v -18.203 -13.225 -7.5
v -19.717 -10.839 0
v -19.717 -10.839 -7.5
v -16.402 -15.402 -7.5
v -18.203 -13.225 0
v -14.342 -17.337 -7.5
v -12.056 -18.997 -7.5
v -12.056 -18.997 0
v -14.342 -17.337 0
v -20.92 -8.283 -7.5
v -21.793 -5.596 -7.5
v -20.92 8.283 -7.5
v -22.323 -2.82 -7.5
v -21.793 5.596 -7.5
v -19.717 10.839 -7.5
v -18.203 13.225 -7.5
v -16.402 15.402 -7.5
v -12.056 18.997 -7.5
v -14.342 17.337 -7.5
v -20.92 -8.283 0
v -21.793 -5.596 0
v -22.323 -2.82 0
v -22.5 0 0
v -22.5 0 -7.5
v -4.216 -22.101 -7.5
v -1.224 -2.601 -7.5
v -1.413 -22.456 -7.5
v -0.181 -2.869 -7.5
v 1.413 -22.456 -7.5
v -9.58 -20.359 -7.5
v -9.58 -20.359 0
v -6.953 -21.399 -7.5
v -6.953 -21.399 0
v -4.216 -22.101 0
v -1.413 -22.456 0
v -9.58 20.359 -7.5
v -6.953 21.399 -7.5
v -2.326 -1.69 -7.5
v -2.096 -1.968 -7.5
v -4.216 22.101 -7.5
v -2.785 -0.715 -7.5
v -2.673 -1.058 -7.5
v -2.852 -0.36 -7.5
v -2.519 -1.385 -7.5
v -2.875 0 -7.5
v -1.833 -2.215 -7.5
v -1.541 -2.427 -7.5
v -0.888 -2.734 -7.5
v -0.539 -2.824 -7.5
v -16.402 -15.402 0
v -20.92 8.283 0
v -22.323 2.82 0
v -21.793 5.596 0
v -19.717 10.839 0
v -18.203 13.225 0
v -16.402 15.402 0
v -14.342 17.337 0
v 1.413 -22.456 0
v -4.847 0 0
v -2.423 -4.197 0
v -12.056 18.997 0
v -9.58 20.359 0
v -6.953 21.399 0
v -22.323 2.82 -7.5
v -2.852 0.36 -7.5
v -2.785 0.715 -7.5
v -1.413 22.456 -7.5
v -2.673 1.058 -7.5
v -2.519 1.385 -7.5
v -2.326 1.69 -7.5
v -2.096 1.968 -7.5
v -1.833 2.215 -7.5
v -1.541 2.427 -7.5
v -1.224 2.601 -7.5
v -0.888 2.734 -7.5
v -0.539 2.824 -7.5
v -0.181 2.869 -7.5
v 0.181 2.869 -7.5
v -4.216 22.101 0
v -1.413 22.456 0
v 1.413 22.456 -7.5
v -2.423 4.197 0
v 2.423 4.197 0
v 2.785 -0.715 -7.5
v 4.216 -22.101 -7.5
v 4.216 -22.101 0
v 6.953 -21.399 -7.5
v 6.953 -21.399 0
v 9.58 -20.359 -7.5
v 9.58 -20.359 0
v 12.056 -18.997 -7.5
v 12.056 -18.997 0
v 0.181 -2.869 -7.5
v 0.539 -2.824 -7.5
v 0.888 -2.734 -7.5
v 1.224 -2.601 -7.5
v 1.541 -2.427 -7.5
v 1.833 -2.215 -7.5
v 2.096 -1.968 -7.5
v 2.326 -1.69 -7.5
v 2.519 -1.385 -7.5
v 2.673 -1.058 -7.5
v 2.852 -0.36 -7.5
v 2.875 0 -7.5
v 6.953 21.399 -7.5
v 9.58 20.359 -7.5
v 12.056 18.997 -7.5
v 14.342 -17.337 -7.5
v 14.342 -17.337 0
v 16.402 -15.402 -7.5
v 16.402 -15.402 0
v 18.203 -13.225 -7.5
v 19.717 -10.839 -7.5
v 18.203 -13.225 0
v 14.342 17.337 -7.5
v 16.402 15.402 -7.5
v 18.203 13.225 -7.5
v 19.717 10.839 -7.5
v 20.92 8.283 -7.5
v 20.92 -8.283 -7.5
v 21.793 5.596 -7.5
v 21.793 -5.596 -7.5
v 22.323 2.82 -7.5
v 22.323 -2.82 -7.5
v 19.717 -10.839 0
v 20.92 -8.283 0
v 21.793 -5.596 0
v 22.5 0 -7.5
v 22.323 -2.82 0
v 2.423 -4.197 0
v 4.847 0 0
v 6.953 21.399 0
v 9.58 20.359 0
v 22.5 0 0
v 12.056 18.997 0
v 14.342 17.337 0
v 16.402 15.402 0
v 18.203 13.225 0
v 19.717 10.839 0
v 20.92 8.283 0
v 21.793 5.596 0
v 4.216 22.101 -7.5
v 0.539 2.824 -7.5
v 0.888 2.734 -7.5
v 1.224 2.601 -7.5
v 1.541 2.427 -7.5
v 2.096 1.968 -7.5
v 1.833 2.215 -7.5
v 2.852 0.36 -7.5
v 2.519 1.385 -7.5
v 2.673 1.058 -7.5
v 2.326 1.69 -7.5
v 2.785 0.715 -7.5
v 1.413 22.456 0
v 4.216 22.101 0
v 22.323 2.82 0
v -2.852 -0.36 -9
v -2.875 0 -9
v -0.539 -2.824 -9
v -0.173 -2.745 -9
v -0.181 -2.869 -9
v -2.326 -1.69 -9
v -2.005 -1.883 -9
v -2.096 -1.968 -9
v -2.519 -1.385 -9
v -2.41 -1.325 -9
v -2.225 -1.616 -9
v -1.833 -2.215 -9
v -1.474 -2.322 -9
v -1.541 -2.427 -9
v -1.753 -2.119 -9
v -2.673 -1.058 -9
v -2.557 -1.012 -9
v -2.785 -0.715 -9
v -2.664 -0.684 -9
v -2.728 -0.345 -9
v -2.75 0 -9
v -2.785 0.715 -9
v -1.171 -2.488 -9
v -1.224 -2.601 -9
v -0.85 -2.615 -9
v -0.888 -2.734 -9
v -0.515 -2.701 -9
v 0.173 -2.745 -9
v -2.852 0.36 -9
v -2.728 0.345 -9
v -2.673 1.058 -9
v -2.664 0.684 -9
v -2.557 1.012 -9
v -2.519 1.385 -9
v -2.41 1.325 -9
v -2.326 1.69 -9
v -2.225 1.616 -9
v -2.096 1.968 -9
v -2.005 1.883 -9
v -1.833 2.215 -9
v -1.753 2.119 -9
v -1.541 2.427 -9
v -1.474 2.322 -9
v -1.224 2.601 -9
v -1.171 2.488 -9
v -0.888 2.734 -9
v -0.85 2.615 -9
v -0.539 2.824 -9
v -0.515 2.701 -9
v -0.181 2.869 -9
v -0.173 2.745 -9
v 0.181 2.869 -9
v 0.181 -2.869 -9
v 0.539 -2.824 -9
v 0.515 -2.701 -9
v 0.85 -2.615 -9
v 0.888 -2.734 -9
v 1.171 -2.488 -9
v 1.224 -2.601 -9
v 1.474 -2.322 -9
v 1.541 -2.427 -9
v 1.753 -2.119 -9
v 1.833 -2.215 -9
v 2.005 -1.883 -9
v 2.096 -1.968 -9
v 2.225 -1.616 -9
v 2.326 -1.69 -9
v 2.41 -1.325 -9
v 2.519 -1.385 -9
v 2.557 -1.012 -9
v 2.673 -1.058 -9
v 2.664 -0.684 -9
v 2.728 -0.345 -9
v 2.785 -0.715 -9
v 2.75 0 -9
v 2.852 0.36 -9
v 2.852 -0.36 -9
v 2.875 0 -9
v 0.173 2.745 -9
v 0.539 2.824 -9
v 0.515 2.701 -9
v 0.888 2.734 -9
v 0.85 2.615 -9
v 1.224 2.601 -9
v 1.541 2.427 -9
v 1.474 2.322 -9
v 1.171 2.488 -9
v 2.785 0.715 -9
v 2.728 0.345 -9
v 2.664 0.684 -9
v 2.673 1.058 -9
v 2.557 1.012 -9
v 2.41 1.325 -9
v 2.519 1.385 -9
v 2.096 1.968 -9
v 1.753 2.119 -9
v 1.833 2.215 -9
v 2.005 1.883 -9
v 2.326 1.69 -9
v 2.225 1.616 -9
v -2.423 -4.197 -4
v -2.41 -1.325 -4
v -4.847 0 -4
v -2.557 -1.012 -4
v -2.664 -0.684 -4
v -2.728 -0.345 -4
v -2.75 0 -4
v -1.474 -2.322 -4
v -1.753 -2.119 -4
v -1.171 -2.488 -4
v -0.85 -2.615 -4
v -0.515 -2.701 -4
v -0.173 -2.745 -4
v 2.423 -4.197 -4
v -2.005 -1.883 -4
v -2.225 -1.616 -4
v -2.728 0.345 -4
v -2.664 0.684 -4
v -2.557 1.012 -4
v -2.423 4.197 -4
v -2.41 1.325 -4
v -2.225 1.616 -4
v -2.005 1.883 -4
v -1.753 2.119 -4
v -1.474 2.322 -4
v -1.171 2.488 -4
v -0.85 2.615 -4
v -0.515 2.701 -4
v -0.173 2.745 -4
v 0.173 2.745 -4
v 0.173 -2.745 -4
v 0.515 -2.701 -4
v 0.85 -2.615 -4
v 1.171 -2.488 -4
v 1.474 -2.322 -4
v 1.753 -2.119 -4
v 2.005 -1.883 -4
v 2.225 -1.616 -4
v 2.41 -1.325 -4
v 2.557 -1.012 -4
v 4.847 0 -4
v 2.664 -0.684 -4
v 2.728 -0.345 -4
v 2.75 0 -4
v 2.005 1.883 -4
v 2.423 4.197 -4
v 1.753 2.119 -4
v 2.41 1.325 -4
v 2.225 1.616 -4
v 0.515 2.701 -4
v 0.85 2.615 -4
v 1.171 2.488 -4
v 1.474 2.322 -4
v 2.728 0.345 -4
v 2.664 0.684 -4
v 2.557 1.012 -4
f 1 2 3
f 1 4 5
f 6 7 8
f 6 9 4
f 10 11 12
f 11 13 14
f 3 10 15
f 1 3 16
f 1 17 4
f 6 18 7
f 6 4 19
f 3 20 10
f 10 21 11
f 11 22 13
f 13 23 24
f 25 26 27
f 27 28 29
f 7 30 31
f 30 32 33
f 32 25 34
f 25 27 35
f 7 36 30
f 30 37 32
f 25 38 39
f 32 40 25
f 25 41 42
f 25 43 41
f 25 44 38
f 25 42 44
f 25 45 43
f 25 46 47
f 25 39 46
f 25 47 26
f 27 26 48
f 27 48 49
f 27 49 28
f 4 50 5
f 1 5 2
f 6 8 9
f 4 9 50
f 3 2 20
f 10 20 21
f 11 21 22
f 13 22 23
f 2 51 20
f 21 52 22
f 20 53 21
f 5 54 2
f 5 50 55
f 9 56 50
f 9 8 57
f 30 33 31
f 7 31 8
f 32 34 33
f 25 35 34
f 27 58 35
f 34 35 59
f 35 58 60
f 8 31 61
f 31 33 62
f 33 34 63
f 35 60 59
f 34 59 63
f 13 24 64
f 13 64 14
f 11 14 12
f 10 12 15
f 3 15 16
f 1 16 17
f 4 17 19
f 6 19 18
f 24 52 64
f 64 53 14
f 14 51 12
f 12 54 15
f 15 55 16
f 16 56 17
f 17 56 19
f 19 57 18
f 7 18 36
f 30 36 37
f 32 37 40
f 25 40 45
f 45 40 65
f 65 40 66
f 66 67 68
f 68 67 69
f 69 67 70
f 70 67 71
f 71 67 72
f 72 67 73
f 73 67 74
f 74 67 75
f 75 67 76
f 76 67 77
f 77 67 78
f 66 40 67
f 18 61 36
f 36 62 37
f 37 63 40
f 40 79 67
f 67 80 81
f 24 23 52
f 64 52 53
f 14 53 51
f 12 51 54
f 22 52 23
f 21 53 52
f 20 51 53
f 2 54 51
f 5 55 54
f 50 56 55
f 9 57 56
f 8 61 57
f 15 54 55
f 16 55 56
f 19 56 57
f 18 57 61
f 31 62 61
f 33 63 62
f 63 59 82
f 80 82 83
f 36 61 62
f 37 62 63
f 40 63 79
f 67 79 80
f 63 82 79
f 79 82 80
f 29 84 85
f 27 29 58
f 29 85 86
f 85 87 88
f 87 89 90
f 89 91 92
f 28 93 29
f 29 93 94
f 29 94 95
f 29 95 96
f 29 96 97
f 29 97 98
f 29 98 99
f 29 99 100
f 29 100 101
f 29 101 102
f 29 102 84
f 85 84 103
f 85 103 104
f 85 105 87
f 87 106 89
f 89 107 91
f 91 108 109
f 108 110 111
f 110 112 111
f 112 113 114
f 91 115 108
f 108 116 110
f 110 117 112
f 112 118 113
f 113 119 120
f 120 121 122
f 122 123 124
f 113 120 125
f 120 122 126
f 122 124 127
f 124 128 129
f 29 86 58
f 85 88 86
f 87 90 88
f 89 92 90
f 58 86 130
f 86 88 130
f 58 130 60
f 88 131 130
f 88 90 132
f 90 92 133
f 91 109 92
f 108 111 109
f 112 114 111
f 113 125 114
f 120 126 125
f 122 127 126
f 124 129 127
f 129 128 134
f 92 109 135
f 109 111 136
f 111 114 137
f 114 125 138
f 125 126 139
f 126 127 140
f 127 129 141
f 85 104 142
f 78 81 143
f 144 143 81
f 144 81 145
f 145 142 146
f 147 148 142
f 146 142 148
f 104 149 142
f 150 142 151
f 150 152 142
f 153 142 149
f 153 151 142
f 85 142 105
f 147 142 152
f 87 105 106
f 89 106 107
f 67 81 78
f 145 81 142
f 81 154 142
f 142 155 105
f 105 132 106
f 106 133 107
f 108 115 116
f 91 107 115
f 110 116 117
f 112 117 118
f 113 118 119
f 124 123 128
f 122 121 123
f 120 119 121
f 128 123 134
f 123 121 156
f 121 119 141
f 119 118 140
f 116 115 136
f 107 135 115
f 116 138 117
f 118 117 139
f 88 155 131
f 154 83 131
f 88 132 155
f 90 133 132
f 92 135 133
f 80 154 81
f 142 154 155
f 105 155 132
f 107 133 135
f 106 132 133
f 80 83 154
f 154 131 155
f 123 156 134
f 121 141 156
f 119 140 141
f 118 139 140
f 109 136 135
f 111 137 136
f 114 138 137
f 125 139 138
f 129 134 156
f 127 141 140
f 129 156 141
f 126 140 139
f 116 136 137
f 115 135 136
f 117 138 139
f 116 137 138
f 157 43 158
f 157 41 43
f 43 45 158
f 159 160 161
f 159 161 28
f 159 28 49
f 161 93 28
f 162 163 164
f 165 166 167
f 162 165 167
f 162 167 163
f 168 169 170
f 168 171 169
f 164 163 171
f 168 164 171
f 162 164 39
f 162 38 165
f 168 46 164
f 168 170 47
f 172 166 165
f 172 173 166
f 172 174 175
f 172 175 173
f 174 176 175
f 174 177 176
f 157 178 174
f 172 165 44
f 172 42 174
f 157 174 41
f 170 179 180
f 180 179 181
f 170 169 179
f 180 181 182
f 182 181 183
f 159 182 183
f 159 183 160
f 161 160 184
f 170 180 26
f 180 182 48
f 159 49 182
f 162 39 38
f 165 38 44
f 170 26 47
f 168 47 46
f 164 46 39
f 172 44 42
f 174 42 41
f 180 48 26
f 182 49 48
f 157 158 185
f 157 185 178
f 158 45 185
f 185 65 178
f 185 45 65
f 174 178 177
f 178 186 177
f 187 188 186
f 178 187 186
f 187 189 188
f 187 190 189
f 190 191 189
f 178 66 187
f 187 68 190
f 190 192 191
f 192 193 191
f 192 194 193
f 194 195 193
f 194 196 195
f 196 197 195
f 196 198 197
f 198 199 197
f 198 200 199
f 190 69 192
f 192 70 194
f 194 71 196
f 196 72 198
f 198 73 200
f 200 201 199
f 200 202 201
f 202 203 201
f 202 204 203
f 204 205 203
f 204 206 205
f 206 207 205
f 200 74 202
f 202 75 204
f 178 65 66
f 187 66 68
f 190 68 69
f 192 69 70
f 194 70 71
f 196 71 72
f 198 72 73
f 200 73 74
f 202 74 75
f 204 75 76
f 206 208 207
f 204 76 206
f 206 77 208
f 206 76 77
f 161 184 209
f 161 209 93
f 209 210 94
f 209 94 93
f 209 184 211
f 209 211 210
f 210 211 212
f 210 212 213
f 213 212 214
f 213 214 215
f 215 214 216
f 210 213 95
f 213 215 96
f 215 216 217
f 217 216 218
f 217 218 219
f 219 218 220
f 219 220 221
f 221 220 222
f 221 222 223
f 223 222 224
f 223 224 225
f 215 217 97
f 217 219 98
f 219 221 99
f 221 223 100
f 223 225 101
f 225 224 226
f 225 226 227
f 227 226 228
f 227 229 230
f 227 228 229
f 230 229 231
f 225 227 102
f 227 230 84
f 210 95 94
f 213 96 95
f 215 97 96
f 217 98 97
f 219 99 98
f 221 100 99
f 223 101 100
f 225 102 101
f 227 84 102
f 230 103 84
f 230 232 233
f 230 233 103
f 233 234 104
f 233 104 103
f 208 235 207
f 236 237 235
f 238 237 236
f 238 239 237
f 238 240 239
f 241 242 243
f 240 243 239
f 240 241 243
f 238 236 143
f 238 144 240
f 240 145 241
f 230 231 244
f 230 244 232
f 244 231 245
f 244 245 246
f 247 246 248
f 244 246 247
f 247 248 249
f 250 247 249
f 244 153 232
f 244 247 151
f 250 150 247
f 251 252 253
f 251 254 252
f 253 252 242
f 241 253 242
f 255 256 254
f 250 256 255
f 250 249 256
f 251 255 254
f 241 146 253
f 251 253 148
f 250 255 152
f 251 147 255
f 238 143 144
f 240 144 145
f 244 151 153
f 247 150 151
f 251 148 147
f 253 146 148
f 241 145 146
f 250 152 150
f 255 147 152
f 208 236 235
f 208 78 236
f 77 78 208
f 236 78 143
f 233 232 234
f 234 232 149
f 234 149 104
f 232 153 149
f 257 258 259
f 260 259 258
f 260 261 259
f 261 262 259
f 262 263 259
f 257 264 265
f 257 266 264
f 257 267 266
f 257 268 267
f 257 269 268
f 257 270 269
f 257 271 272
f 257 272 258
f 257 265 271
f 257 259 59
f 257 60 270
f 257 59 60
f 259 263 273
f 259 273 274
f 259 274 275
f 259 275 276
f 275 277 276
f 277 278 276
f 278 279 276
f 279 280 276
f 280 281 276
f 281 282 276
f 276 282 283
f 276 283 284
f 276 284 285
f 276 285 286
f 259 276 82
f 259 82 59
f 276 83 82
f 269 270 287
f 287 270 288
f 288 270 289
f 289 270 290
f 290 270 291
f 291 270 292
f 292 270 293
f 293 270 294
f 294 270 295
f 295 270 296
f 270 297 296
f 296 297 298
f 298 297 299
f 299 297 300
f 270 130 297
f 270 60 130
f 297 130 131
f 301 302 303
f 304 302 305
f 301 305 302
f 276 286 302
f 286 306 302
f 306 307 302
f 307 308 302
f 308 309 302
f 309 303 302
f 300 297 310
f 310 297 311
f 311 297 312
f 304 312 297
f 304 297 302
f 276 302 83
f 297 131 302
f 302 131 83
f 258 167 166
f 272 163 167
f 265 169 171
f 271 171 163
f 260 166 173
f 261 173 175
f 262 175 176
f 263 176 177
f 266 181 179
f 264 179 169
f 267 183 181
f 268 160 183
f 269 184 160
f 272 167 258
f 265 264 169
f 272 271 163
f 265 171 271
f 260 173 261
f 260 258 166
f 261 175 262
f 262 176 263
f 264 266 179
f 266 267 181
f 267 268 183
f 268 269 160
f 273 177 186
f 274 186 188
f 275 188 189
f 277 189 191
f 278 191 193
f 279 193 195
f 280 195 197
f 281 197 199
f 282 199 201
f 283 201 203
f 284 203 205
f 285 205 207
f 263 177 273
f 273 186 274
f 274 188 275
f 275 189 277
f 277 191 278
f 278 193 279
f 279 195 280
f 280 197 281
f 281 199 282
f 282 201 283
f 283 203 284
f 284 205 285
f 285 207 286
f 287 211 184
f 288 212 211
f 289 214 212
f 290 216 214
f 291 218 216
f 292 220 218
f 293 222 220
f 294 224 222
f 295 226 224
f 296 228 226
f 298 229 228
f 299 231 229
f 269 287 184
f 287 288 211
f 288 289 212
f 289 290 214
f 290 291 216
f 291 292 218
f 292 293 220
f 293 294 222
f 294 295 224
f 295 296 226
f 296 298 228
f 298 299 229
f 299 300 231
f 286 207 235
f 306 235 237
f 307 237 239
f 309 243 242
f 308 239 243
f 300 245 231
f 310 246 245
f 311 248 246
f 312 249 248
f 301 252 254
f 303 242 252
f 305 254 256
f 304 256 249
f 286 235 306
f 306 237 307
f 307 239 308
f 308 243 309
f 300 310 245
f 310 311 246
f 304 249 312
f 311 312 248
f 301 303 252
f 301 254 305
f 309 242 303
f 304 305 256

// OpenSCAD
$fn = 50;


difference() {
	union() {
		translate(v = [0, 0, -7.5000000000]) {
			cylinder(h = 7.5000000000, r = 22.5000000000);
		}
		#translate(v = [0, 0, -9.0000000000]) {
			cylinder(h = 9, r = 2.8750000000);
		}
	}
	union() {
		translate(v = [0, 0, 0]) {
			rotate(a = [0, 0, 0]) {
				difference() {
					union() {
						translate(v = [0, 0, -4]) {
							linear_extrude(height = 4) {
								polygon(points = [[4.8468000000, 0.0000000000], [2.4234000000, 4.1974519271], [-2.4234000000, 4.1974519271], [-4.8468000000, 0.0000000000], [-2.4234000000, -4.1974519271], [2.4234000000, -4.1974519271]]);
							}
						}
					}
					union();
				}
			}
		}
		#translate(v = [0, 0, -100.0000000000]) {
			cylinder(h = 200, r = 2.7500000000);
		}
	}
}
